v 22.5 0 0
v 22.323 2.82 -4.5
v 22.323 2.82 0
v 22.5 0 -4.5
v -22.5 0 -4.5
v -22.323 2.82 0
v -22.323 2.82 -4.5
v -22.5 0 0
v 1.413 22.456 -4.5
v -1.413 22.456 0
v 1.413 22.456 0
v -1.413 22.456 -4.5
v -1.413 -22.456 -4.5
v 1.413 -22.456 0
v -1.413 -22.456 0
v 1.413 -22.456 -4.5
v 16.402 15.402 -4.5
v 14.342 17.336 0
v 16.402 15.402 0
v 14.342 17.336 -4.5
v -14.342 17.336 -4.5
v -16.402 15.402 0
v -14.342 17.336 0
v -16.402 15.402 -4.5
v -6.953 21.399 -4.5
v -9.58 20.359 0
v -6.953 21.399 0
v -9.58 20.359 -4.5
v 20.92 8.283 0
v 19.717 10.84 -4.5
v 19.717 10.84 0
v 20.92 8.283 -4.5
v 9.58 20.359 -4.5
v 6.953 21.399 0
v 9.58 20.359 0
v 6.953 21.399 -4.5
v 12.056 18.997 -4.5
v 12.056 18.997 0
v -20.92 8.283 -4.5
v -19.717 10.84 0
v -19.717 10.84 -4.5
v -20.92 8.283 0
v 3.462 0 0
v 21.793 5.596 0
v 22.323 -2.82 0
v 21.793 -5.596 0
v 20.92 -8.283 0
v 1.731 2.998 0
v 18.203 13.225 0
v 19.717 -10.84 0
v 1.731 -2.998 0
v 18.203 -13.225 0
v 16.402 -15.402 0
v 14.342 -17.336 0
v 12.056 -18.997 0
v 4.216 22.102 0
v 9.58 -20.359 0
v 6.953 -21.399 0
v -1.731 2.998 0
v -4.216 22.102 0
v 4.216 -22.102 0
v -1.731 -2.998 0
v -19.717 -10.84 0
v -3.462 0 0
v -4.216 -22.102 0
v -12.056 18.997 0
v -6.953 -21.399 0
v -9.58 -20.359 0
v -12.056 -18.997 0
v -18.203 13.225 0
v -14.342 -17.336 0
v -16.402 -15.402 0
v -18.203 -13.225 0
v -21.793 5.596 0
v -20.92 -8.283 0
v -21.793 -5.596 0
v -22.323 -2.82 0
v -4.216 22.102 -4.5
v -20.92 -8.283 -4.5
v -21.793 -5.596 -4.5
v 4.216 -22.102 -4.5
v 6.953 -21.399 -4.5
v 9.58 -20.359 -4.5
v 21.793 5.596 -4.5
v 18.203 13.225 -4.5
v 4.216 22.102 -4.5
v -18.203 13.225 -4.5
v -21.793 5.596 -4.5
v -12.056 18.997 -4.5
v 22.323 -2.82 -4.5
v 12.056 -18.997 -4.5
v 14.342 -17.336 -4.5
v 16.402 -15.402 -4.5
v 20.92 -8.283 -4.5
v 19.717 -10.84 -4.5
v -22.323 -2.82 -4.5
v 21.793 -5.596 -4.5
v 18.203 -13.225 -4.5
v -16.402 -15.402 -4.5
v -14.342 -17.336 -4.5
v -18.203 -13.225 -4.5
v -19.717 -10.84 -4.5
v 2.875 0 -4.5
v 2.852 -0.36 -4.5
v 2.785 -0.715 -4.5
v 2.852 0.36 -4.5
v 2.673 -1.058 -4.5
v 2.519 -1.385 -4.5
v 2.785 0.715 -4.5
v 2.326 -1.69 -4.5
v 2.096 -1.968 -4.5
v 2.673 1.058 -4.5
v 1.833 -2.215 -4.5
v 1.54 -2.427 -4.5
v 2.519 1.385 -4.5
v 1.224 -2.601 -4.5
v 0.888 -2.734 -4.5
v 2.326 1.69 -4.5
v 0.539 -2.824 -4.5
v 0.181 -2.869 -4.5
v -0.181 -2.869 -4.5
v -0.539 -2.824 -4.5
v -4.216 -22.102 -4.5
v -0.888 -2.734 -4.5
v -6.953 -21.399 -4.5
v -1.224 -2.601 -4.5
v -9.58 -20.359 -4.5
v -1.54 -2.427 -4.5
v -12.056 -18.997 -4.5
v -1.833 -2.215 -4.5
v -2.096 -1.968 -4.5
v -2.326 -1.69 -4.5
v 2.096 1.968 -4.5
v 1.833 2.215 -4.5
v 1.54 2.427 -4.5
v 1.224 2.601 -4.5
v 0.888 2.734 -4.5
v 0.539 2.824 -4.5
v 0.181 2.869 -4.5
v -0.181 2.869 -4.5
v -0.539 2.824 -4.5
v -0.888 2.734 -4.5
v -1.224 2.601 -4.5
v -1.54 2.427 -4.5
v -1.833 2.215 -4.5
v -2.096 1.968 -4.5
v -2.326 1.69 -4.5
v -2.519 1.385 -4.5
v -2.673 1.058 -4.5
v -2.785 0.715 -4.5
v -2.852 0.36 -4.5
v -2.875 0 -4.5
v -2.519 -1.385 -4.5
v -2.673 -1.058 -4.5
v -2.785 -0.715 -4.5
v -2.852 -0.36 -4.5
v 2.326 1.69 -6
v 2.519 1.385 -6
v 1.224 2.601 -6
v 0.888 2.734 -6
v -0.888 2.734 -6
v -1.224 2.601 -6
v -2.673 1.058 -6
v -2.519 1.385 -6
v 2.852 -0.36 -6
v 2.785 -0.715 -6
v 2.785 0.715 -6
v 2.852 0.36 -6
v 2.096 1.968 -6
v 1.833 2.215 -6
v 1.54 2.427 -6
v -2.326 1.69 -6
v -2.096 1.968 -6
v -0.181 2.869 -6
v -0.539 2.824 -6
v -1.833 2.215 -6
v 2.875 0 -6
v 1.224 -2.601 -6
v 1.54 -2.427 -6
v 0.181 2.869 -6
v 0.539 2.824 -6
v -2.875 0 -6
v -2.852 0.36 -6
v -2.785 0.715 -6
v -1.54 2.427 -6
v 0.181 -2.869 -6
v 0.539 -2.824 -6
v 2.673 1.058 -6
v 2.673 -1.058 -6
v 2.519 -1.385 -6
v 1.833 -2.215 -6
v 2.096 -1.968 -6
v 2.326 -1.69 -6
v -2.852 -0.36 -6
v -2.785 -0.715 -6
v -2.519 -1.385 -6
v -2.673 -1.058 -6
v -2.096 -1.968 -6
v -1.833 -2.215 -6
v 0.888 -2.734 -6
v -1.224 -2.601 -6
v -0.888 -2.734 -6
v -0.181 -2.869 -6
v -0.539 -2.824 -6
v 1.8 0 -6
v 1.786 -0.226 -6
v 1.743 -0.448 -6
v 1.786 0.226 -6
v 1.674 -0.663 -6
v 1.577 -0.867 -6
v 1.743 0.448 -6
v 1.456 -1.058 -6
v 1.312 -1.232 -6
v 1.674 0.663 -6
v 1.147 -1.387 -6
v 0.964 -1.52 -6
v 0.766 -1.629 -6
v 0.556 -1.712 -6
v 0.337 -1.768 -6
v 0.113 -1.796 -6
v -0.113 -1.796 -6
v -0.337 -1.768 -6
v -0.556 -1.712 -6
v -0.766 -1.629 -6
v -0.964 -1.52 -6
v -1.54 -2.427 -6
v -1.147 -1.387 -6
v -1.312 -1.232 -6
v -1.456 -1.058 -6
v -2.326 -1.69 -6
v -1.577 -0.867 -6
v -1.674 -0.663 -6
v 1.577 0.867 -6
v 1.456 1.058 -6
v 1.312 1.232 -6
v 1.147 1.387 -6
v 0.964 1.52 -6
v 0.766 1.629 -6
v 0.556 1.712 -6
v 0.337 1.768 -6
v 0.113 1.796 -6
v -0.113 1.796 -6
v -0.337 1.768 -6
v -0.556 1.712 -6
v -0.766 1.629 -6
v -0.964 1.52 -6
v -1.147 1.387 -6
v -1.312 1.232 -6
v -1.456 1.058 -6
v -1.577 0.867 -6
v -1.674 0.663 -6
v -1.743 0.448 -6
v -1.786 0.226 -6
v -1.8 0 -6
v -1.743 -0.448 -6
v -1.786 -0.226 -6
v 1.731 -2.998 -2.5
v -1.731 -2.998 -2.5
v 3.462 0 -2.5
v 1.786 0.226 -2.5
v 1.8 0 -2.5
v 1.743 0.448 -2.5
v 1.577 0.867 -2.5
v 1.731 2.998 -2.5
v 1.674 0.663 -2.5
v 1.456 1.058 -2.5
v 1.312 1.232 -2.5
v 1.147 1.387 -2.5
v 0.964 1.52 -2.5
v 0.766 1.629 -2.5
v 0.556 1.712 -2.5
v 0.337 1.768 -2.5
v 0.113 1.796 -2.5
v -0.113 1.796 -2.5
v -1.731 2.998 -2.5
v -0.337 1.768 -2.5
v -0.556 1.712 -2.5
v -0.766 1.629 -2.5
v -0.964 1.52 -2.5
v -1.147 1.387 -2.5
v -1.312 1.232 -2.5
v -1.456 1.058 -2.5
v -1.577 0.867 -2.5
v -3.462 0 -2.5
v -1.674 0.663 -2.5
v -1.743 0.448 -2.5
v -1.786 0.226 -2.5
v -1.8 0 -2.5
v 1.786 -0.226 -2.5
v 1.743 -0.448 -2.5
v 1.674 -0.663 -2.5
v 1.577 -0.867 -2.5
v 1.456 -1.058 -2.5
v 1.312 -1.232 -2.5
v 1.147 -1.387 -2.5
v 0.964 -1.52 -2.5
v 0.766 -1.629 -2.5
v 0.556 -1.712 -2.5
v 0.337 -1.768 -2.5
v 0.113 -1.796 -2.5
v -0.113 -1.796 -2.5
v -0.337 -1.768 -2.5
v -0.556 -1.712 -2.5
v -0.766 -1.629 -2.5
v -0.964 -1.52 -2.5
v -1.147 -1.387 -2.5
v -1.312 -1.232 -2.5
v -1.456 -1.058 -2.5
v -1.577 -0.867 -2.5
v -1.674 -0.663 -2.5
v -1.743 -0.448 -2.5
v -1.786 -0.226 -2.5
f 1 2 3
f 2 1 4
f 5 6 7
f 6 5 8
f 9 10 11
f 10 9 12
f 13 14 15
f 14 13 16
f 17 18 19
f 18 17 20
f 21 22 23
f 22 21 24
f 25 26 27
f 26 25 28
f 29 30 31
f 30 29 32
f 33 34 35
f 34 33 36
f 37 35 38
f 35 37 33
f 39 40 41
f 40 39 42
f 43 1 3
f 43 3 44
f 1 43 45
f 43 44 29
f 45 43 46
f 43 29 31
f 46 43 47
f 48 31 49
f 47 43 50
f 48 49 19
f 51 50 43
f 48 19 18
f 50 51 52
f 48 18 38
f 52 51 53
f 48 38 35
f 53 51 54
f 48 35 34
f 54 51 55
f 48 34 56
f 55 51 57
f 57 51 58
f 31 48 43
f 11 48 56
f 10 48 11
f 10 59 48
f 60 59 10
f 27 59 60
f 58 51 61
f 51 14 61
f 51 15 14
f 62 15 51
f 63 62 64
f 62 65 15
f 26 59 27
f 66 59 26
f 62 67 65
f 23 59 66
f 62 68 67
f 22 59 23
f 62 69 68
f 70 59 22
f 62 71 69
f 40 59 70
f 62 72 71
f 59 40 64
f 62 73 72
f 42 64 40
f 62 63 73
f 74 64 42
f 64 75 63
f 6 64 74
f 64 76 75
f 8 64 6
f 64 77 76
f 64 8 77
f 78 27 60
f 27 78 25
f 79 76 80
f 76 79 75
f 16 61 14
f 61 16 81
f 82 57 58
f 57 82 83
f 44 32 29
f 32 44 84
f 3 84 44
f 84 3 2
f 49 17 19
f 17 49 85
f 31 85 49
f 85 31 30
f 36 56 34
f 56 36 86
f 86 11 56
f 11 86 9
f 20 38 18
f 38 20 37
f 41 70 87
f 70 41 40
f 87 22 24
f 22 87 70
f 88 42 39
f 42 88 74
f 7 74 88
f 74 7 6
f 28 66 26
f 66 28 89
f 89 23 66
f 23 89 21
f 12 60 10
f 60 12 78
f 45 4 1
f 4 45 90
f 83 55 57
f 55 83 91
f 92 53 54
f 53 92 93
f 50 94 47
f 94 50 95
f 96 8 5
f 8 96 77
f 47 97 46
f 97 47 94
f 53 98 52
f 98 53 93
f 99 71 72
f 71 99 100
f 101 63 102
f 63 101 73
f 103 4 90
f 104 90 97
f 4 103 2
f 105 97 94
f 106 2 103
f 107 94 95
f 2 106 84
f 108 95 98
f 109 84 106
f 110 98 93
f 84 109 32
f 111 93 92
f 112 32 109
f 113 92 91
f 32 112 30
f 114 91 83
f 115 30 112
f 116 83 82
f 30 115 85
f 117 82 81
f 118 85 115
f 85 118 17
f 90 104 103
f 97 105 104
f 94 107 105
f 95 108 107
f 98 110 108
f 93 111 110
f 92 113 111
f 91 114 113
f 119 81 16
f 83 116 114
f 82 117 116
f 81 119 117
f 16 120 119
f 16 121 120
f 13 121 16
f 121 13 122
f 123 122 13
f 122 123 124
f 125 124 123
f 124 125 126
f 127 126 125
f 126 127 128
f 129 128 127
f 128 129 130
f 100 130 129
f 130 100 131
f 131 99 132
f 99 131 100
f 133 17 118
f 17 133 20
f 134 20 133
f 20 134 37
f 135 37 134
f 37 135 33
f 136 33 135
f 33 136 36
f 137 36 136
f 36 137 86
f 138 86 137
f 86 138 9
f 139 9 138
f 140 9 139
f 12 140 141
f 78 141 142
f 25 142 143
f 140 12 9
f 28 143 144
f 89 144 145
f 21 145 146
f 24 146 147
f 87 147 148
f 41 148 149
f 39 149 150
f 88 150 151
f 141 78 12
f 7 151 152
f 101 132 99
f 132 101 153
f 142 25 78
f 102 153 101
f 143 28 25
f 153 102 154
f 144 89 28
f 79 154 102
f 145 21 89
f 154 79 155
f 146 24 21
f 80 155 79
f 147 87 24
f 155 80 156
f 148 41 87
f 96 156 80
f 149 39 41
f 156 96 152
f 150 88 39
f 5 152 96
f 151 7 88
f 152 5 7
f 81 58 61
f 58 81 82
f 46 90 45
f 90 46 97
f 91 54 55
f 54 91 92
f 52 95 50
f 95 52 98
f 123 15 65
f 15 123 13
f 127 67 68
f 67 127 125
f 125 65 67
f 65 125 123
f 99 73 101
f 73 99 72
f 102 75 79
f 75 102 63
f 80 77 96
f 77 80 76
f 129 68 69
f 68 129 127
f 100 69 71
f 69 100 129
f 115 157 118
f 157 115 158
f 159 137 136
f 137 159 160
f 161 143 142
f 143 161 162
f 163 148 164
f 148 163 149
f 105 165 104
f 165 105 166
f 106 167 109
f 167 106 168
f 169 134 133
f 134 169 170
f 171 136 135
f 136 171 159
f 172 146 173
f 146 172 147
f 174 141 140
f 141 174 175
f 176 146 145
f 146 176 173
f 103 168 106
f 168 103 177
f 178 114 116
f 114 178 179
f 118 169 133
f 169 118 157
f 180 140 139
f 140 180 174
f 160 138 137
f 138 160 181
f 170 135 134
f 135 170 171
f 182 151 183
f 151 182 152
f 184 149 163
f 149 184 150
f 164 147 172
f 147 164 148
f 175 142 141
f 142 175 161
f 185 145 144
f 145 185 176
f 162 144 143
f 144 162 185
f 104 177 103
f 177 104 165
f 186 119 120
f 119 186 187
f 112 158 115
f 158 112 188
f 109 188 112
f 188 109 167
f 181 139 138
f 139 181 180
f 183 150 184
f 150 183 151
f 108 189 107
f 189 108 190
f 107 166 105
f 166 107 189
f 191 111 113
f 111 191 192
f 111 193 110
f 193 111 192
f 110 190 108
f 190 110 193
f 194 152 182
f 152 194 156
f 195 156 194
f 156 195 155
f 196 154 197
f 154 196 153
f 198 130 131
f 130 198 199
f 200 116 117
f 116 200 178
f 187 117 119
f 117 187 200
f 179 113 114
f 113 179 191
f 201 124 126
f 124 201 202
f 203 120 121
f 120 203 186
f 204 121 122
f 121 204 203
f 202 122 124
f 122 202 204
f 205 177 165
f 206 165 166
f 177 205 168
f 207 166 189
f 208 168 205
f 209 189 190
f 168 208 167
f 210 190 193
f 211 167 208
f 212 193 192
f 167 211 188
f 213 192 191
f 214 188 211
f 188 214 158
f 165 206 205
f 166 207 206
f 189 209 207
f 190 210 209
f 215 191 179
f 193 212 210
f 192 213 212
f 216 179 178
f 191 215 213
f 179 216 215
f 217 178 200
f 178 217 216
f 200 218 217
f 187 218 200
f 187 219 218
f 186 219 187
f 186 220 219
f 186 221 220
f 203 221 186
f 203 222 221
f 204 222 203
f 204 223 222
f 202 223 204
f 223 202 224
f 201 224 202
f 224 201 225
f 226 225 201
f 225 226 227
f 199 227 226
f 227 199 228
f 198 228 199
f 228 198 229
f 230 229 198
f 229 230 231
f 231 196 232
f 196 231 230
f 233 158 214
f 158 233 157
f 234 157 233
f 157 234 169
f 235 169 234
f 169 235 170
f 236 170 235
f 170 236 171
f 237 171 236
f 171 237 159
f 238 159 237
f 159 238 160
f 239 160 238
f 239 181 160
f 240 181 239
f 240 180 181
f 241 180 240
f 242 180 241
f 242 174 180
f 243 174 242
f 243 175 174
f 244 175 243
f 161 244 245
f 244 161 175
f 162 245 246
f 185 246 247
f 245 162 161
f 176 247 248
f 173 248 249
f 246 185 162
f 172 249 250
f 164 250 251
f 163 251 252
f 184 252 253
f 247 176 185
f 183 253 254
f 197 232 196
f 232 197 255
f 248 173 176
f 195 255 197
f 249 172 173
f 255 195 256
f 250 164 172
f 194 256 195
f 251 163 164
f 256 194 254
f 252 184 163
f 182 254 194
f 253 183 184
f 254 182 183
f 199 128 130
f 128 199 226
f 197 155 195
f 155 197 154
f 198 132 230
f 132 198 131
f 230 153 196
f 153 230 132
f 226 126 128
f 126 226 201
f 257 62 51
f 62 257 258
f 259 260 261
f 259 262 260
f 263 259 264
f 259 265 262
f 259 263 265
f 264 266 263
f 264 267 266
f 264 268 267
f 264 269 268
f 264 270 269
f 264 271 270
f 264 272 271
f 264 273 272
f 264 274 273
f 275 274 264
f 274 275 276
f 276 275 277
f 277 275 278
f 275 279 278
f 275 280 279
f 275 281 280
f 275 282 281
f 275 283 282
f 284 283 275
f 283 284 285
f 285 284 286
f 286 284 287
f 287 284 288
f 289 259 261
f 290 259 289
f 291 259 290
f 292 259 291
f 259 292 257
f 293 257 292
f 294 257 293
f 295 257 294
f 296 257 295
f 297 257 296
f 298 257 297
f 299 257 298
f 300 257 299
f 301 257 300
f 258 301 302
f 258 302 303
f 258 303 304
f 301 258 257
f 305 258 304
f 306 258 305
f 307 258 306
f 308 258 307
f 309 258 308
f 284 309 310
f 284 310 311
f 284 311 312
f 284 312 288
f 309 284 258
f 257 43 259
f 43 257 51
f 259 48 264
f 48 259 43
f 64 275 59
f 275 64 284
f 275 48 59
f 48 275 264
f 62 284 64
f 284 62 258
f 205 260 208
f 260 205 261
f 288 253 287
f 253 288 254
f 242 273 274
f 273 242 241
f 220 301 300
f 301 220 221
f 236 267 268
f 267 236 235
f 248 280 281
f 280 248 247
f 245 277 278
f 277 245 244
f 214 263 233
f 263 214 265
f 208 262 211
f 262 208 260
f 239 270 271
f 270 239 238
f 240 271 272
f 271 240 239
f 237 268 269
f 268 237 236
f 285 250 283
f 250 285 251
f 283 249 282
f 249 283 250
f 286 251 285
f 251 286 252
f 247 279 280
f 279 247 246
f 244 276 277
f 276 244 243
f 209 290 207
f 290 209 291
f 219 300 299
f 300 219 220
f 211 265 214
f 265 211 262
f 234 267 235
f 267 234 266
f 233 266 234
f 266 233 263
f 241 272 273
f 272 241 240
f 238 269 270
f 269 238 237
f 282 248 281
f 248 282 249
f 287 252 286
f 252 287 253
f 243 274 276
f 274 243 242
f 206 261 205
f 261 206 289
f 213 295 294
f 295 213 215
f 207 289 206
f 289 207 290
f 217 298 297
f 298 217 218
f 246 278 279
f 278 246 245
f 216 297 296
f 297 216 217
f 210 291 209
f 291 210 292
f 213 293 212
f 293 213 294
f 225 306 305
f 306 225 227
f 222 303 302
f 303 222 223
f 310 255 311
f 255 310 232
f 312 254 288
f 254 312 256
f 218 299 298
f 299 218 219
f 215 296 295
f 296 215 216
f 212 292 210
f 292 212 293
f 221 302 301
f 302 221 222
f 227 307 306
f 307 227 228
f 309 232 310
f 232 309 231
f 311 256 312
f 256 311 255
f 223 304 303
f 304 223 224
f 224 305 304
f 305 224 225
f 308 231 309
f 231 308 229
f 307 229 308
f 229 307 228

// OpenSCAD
$fn = 50;


difference() {
	union() {
		translate(v = [0, 0, -4.5000000000]) {
			cylinder(h = 4.5000000000, r = 22.5000000000);
		}
		translate(v = [0, 0, -6.0000000000]) {
			cylinder(h = 6, r = 2.8750000000);
		}
	}
	union() {
		translate(v = [0, 0, 0]) {
			rotate(a = [0, 0, 0]) {
				difference() {
					union() {
						translate(v = [0, 0, -2.5000000000]) {
							linear_extrude(height = 2.5000000000) {
								polygon(points = [[3.4620000000, 0.0000000000], [1.7310000000, 2.9981799479], [-1.7310000000, 2.9981799479], [-3.4620000000, 0.0000000000], [-1.7310000000, -2.9981799479], [1.7310000000, -2.9981799479]]);
							}
						}
					}
					union();
				}
			}
		}
		#translate(v = [0, 0, -100.0000000000]) {
			cylinder(h = 200, r = 1.8000000000);
		}
	}
}
